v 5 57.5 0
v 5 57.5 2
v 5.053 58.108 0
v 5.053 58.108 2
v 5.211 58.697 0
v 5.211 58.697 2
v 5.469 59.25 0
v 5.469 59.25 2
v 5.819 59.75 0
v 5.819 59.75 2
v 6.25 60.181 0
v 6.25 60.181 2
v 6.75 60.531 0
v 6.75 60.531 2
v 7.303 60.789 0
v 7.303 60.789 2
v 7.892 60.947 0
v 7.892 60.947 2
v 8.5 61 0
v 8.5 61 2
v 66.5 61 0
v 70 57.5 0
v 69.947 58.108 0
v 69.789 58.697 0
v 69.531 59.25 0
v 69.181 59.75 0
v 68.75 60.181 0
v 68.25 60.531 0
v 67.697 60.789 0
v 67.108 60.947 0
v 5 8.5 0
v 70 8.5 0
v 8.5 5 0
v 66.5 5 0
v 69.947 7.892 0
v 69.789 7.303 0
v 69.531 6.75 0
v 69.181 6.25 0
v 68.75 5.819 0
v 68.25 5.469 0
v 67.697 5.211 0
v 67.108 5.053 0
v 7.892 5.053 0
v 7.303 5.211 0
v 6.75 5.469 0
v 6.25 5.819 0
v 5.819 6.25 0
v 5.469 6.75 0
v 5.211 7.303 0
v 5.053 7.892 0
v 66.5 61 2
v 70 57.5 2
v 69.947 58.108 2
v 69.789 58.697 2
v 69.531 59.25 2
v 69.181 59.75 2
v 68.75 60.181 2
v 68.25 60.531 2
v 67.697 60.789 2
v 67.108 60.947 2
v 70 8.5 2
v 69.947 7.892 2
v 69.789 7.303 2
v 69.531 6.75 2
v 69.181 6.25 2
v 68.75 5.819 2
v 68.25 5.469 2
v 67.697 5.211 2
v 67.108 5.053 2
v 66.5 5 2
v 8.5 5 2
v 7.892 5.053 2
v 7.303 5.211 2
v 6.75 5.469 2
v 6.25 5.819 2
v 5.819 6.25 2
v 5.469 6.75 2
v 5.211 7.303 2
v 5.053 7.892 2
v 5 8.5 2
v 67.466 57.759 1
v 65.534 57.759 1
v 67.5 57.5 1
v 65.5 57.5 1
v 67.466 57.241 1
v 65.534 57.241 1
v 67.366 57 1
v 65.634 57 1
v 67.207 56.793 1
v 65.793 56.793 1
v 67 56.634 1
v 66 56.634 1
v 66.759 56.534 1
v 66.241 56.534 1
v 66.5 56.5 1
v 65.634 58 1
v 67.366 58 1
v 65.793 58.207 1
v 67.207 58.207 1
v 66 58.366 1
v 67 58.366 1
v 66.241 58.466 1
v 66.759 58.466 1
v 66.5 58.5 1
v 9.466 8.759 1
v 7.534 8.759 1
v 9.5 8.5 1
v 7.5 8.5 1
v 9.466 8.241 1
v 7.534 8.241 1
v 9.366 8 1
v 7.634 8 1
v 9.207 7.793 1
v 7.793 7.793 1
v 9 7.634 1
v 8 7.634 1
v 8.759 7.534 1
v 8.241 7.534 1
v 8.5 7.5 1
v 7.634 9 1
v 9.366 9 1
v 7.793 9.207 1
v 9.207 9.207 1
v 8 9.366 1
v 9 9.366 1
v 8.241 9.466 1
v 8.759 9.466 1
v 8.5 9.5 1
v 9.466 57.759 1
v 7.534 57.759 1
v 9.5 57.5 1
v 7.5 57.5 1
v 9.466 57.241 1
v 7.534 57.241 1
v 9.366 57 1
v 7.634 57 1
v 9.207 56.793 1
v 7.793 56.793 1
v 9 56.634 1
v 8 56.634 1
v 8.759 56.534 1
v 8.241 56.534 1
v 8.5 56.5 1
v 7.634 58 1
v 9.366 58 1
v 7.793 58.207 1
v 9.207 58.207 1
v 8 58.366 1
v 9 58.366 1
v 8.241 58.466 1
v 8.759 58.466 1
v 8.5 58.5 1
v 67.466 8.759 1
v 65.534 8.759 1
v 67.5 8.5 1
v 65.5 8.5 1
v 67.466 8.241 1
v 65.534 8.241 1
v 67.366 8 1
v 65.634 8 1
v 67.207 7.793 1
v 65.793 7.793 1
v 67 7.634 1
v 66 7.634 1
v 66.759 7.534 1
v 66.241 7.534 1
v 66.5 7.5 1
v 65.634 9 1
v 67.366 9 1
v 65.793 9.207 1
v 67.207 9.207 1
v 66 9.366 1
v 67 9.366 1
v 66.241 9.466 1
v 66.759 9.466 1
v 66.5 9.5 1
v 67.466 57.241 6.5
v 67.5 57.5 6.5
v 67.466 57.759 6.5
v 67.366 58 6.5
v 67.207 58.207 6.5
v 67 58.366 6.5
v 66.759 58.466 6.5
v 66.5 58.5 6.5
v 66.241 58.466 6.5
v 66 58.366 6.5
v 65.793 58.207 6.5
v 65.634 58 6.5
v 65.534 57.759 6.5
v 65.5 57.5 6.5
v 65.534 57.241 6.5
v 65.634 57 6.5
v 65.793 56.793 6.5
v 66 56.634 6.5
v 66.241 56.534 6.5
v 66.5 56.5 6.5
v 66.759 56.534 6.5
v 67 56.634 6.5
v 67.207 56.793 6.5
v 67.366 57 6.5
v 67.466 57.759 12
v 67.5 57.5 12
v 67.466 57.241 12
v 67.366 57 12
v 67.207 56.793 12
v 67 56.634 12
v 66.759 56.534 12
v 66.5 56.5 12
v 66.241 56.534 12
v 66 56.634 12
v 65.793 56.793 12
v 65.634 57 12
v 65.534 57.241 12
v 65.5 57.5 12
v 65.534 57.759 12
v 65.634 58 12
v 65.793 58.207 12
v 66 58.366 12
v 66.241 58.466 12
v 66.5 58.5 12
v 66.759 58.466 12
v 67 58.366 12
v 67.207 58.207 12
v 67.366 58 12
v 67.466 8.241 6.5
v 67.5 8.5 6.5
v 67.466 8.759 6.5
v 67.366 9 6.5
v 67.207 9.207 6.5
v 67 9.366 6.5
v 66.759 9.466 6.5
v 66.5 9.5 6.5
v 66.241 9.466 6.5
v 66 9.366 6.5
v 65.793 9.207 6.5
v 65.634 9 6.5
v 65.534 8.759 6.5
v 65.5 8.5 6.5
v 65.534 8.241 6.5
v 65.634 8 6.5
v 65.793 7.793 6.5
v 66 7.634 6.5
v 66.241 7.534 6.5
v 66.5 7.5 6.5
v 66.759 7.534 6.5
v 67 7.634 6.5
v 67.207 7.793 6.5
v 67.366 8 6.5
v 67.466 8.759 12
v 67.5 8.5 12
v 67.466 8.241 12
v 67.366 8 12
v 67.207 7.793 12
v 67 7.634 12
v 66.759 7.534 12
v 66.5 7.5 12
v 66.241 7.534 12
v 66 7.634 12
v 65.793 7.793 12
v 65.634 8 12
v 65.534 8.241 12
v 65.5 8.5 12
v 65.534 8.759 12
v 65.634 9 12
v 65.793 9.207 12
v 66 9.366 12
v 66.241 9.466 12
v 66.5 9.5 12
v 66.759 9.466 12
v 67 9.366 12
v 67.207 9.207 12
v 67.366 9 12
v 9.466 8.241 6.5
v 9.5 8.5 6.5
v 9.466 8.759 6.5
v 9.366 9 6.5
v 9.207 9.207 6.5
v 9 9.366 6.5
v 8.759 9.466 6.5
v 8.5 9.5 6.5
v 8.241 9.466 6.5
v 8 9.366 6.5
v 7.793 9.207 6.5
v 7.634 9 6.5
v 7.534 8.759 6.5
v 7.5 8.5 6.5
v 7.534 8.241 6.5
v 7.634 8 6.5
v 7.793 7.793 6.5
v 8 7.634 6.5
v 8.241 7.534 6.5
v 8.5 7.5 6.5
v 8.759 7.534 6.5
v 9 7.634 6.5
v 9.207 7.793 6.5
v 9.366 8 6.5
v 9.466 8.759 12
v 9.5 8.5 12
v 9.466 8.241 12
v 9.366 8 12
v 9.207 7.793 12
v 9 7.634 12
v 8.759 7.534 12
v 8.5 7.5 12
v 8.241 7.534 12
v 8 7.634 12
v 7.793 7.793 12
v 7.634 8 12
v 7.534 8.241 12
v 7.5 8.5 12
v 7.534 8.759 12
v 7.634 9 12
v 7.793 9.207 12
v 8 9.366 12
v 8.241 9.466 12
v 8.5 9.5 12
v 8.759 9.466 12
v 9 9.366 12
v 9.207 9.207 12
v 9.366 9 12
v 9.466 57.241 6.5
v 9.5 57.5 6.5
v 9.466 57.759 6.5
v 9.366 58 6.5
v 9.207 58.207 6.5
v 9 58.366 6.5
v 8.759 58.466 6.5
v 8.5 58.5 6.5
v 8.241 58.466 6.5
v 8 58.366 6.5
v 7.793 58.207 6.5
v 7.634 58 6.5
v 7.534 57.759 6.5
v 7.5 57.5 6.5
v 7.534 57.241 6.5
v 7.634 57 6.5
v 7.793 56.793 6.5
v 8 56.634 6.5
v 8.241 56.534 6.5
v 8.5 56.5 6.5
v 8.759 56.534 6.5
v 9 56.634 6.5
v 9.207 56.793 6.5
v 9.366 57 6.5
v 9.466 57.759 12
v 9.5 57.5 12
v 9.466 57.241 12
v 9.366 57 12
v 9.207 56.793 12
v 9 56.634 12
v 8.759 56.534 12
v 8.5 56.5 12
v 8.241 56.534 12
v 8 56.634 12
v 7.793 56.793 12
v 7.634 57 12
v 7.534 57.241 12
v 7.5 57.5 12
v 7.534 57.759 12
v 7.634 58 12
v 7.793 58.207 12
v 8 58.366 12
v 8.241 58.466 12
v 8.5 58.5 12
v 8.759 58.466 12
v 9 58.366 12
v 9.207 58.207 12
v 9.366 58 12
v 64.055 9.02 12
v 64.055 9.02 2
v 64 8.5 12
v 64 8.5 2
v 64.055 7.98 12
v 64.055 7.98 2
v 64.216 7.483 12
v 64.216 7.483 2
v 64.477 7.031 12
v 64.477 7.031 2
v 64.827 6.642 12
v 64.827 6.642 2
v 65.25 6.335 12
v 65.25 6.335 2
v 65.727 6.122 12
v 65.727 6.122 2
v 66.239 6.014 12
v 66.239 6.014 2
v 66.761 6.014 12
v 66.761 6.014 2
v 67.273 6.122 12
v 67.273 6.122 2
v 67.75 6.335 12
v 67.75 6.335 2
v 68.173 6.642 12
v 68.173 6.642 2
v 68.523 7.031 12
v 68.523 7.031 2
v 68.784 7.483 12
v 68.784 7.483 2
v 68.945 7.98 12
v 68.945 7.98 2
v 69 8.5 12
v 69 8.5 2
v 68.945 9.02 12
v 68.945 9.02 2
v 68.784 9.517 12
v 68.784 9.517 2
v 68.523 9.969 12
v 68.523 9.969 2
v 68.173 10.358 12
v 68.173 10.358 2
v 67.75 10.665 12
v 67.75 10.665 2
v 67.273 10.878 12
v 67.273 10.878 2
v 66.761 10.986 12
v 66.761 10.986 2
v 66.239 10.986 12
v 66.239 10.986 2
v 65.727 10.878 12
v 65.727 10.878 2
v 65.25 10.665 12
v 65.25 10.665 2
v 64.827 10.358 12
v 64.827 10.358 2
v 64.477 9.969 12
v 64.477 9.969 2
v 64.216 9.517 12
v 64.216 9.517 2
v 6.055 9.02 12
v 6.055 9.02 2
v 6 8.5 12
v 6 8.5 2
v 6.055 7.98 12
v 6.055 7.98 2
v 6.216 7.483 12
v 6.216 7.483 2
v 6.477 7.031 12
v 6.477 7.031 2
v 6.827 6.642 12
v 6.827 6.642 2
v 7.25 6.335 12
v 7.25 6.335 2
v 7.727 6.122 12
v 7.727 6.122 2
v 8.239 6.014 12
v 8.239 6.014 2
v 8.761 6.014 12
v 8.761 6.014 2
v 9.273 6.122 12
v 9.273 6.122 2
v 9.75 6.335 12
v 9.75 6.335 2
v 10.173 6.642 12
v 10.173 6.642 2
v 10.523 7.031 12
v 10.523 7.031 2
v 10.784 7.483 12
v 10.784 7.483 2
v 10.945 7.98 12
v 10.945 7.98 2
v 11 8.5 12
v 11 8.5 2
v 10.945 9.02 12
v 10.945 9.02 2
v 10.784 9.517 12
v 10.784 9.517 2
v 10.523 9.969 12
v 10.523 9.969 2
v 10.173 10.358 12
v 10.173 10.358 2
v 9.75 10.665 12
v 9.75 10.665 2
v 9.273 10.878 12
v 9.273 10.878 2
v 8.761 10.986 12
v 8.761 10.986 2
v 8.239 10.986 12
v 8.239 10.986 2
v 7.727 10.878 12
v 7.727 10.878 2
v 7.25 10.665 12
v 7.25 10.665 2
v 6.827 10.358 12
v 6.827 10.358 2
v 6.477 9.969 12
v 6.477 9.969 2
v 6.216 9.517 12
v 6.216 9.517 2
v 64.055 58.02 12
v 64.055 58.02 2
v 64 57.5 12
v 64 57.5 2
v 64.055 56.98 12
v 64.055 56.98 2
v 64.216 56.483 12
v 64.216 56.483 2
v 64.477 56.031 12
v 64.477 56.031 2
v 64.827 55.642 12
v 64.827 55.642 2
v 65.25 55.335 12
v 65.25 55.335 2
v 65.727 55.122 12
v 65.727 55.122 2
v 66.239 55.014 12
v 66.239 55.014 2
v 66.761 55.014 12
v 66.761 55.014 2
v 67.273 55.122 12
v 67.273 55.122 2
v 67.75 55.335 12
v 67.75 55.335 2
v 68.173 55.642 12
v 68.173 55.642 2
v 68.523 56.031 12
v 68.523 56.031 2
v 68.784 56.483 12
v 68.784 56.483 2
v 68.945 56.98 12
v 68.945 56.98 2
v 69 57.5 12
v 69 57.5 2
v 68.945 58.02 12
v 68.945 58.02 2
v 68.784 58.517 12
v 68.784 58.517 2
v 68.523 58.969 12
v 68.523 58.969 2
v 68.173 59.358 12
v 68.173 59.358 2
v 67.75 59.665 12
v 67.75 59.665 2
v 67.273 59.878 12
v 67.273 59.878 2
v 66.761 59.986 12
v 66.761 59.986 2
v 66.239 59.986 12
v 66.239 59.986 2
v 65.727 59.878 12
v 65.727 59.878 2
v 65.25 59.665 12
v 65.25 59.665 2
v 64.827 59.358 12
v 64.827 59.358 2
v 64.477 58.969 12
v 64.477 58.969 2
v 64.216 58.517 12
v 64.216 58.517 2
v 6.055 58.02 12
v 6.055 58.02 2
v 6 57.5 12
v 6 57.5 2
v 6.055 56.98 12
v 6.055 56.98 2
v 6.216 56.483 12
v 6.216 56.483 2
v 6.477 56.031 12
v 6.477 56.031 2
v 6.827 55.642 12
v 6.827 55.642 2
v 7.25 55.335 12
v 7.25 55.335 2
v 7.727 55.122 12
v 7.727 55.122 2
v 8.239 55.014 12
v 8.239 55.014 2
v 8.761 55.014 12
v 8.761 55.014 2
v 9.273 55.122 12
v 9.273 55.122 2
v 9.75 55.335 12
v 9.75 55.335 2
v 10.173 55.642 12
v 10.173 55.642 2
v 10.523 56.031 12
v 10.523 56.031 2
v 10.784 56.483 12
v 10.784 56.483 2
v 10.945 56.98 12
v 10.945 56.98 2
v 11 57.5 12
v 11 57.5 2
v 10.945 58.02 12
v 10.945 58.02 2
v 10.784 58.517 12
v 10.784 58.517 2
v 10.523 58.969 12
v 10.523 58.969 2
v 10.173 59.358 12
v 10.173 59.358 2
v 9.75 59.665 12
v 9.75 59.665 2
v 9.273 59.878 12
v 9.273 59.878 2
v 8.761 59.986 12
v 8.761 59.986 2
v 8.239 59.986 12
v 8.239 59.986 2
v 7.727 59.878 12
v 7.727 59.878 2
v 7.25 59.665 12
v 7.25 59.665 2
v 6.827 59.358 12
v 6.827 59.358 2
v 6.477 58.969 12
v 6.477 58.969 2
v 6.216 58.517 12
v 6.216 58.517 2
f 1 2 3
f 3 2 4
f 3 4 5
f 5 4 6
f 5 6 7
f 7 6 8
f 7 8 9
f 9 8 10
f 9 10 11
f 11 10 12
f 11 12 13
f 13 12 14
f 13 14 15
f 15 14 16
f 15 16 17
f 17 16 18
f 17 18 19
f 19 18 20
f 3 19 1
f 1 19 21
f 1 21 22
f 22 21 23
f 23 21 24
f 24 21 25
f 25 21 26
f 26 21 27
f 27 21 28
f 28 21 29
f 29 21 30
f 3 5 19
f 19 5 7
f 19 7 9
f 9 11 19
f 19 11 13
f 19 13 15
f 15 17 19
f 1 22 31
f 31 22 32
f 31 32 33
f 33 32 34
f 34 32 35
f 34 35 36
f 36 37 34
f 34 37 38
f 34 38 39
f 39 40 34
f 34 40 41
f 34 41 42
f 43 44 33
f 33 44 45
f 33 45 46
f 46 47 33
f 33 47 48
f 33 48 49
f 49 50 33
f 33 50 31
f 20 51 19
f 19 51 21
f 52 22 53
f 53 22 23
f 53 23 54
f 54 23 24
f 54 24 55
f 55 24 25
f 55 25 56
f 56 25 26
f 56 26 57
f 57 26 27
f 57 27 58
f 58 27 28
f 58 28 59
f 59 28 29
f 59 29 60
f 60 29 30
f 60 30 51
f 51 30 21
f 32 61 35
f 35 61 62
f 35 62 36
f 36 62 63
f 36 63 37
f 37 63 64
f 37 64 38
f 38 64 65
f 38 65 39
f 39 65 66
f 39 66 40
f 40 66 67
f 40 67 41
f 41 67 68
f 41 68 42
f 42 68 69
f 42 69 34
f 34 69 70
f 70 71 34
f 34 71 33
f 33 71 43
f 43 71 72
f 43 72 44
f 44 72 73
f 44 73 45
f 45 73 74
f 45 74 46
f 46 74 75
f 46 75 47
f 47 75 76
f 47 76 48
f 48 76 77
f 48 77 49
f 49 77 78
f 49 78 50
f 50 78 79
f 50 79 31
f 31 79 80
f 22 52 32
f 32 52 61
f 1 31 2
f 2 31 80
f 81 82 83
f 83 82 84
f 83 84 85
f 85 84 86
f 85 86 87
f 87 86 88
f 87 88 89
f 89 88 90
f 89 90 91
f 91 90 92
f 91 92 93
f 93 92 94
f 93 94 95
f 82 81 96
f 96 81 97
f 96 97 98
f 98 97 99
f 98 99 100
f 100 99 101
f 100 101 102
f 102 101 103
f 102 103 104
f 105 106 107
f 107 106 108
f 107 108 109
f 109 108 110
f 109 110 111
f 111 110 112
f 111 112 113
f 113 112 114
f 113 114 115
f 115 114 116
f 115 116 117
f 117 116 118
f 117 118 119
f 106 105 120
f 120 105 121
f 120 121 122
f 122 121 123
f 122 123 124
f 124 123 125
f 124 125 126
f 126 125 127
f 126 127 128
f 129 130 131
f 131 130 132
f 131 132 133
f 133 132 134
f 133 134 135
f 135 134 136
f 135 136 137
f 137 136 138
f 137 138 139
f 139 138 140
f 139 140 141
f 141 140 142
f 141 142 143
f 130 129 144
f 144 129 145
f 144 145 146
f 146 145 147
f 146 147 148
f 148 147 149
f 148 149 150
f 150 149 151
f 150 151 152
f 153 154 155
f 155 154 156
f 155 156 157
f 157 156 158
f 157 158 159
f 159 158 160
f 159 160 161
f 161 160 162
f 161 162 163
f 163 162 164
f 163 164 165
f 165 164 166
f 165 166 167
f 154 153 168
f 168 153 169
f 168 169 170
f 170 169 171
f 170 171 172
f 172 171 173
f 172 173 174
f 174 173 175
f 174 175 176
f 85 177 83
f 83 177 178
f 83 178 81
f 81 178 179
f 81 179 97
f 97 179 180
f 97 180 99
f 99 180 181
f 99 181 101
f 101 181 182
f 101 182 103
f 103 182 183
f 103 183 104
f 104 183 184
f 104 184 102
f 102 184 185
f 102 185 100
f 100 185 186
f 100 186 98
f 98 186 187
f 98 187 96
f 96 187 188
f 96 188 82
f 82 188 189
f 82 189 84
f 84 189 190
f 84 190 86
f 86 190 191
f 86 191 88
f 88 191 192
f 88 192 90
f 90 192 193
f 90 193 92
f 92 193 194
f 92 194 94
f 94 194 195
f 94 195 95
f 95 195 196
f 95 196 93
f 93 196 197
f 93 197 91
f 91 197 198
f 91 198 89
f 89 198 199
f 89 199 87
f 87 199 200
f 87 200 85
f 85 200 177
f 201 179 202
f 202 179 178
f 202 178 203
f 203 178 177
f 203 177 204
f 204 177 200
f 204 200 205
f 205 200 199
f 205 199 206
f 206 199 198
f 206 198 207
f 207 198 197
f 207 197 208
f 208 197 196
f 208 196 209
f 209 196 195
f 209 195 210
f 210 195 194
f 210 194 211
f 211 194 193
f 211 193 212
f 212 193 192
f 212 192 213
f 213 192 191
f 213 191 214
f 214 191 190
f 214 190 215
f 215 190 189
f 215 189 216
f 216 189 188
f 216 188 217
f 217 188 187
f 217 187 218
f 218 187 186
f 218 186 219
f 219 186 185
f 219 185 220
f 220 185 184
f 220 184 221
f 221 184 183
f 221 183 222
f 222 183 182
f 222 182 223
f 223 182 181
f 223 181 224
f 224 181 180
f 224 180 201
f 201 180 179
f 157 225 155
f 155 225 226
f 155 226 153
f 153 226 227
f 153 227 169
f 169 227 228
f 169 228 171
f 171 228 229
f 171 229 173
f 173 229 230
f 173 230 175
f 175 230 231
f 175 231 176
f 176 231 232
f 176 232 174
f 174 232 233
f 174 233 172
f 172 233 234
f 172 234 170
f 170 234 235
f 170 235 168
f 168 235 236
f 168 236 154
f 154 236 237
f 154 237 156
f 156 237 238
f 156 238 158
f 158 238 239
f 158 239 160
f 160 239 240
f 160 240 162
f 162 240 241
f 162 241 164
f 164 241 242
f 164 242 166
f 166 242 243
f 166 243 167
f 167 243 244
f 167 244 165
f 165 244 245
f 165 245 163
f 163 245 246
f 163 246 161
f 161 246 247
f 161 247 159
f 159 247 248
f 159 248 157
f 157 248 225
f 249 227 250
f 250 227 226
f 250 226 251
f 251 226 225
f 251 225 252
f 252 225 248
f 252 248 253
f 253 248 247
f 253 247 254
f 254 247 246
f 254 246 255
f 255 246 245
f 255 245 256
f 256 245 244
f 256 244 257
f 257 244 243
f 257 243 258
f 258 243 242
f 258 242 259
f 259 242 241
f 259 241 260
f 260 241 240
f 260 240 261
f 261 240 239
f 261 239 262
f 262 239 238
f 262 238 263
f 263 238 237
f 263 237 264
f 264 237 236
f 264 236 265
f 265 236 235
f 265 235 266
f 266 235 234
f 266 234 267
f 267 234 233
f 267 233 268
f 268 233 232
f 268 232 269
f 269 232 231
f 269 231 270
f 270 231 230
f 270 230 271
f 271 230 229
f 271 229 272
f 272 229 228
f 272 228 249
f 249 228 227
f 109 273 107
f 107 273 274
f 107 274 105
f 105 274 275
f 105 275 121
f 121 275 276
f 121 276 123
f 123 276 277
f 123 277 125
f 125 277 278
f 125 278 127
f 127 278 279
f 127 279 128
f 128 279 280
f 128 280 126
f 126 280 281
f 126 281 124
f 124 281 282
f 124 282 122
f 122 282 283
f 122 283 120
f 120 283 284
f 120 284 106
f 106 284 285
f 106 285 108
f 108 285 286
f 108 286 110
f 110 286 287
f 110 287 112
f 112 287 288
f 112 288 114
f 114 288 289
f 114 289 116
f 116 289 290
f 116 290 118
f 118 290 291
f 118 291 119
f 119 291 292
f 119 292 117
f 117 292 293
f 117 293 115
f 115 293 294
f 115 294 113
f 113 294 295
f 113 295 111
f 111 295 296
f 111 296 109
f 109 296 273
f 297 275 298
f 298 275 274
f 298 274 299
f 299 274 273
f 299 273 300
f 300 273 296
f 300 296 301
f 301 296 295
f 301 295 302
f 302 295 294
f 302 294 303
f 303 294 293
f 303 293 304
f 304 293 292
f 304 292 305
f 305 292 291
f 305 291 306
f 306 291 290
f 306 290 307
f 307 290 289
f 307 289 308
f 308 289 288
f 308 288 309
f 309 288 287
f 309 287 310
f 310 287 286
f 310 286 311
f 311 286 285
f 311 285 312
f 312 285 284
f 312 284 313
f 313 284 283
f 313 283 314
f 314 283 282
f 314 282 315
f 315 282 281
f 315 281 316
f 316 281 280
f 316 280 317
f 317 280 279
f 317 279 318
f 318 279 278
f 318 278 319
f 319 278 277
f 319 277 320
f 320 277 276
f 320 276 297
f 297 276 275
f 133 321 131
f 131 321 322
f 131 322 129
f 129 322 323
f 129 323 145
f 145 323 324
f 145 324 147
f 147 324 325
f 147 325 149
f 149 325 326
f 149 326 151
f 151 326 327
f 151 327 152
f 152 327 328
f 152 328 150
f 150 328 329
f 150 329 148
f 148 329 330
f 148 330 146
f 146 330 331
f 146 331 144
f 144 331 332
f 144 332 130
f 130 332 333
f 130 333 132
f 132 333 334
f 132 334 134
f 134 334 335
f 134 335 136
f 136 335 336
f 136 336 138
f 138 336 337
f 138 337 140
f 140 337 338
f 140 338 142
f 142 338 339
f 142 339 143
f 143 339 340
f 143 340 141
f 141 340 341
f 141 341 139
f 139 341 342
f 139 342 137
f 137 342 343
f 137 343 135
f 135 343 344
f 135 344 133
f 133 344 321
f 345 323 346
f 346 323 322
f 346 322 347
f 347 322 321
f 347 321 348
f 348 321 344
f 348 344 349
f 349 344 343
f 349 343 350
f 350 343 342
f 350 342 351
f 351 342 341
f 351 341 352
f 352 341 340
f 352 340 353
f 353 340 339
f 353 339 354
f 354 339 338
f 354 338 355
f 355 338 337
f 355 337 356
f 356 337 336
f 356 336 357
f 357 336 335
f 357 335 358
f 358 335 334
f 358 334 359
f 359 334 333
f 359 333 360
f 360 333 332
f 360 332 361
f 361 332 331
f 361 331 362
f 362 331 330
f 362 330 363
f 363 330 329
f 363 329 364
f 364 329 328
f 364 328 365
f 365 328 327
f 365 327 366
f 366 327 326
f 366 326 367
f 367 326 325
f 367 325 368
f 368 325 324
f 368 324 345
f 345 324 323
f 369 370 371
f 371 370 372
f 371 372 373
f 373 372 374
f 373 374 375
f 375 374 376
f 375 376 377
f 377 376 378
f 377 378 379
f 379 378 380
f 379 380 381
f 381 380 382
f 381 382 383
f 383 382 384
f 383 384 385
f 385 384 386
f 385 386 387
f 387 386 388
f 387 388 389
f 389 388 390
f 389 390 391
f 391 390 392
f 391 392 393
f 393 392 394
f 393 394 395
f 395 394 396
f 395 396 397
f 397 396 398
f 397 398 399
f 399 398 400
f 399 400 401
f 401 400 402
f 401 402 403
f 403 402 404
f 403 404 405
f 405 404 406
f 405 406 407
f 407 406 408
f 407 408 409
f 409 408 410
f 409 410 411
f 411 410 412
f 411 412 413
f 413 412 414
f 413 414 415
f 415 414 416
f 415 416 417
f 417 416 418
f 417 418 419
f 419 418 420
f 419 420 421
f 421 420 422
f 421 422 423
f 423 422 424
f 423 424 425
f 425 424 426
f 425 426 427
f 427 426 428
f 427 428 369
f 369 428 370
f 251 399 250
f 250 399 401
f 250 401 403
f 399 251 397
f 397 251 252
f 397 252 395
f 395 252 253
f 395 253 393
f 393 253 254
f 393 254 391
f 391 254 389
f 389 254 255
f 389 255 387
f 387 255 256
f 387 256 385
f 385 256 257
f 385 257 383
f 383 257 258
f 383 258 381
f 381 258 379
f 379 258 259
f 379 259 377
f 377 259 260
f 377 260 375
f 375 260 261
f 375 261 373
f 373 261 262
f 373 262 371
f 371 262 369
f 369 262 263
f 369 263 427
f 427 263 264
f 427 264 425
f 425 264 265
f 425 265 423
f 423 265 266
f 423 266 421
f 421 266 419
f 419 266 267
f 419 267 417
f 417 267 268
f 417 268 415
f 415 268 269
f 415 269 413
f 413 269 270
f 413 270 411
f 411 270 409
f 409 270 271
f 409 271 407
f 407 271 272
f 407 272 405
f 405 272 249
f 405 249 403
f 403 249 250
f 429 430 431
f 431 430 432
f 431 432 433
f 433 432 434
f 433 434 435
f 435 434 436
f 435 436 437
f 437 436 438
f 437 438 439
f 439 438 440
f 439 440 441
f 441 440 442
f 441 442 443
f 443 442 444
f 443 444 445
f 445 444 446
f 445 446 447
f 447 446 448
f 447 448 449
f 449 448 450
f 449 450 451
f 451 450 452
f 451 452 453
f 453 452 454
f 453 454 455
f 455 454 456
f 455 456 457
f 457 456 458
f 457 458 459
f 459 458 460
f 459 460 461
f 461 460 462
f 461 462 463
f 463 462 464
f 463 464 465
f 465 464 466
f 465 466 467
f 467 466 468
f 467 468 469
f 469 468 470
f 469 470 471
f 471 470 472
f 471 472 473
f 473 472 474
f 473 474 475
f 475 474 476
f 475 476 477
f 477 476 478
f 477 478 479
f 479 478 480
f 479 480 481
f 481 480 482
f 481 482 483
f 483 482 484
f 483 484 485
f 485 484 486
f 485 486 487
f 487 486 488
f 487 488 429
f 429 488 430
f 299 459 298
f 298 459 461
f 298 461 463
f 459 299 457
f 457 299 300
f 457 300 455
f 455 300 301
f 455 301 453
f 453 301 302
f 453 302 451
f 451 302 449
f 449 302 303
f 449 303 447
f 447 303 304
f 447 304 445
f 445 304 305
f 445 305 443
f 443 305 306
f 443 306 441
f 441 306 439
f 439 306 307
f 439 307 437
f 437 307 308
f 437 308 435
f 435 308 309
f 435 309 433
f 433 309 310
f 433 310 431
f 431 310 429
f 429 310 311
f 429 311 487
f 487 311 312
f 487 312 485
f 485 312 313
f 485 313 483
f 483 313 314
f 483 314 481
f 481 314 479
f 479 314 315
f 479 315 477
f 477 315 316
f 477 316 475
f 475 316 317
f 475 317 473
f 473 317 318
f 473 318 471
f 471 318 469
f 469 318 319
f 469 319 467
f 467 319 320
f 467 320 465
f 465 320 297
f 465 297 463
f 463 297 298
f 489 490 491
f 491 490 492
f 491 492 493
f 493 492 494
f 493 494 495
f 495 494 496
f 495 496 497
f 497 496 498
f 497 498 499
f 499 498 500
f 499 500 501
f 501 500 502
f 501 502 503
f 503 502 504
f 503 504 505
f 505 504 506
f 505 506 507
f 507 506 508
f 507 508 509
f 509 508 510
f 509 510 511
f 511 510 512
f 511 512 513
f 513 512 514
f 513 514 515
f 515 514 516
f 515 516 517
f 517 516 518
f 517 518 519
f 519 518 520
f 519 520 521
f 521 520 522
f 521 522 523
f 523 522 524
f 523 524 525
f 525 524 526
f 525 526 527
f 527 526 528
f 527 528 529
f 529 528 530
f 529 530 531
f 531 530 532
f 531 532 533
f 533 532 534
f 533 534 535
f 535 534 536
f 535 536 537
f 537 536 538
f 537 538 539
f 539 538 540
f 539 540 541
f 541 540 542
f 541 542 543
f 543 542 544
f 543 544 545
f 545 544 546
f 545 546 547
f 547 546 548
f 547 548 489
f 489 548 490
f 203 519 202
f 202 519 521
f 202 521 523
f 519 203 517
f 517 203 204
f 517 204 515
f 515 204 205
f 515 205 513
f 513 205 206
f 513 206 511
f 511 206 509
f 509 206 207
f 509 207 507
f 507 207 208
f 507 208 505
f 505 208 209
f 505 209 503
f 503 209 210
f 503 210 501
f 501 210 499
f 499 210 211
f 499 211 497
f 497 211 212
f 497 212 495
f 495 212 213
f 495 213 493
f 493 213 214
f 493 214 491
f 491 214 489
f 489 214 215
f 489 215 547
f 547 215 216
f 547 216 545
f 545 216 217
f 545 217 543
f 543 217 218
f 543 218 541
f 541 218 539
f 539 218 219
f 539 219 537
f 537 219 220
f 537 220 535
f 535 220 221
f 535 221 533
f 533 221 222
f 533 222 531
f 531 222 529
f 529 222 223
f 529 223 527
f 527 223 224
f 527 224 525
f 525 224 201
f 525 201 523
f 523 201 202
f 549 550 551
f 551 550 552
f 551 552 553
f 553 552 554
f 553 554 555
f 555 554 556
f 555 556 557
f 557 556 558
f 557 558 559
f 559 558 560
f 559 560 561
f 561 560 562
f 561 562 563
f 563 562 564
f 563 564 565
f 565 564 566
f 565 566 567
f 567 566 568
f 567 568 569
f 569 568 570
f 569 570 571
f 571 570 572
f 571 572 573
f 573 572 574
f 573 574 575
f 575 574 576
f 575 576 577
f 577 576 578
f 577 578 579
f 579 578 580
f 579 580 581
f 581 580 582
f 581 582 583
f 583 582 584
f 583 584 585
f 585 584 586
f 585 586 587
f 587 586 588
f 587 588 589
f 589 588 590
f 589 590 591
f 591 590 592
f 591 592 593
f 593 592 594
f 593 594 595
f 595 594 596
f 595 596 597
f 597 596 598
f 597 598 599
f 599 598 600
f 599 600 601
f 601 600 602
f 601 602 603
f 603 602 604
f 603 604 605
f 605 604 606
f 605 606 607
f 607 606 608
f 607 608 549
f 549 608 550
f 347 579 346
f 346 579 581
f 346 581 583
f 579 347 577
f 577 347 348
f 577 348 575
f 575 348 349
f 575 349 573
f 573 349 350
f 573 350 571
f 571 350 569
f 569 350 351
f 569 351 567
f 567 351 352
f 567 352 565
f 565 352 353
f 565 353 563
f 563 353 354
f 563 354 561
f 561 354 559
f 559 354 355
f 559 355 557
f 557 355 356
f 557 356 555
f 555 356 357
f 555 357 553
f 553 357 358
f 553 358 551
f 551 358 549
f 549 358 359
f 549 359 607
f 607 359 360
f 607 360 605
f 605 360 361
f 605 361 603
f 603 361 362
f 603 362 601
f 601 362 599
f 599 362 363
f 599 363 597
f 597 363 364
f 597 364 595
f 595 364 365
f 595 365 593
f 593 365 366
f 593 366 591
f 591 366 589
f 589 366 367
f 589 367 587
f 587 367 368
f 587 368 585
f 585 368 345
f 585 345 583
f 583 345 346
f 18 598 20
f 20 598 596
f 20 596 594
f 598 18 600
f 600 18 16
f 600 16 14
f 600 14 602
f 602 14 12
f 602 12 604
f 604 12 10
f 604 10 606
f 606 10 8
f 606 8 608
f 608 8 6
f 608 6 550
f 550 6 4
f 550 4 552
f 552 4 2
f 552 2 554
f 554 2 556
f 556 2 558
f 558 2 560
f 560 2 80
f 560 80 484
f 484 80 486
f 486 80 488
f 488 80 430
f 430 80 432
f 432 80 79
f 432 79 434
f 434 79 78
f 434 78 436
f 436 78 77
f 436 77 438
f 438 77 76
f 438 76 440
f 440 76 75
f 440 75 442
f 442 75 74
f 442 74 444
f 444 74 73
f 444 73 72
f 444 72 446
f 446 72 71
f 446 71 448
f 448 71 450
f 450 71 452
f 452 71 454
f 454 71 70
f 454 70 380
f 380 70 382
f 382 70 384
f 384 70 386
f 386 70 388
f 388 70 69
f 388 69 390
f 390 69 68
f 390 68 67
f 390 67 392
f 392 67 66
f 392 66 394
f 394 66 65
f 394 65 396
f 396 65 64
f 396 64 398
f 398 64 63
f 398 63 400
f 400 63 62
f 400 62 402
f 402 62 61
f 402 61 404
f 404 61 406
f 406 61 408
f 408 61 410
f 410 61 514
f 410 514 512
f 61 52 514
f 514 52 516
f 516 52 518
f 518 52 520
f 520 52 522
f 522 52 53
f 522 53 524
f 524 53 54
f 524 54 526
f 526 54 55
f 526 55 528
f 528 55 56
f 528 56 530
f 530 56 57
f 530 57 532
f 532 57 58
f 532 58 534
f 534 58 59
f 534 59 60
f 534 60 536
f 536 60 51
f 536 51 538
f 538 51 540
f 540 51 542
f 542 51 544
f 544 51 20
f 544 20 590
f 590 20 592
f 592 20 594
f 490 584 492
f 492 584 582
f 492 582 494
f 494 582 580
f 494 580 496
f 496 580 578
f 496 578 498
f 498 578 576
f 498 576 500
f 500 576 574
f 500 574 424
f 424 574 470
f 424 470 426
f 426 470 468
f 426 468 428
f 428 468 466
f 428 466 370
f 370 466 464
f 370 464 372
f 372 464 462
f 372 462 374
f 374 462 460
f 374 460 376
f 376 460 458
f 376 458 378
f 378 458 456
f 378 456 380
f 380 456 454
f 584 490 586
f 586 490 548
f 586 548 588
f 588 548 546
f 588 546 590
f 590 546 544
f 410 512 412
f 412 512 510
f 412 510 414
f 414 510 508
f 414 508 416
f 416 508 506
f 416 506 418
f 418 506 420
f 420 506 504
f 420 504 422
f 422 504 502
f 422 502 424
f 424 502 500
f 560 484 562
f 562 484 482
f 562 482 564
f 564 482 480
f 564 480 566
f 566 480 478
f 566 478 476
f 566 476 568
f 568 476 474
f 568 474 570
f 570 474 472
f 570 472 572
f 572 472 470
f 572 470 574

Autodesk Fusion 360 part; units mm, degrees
sketch "Skizze1" plane through (0, 0, 0) normal (0, 0, 1) x (1, 0, 0)
  line L0 (0, 0) -> (95, 0)
  line L1 (95, 0) -> (95, 66)
  line L2 (95, 66) -> (0, 66)
  line L3 (0, 66) -> (0, 0)
  line L4 (47.5, 0) -> (47.5, 66) construction
  line L5 (0, 33) -> (95, 33) construction
  line L6 (90, 61) -> (5, 61)
  line L7 (5, 61) -> (5, 5)
  line L8 (5, 5) -> (90, 5)
  line L9 (90, 5) -> (90, 61)
  line L10 (90, 61) -> (5, 5) construction
  line L11 (5, 61) -> (90, 5) construction
  line L12 (5, 61) -> (8.5, 61)
  line L13 (8.5, 61) -> (8.5, 57.5)
  line L14 (8.5, 57.5) -> (5, 57.5)
  line L15 (5, 57.5) -> (5, 61)
  circle A0 centre (8.5, 57.5) radius 2.5
  line L16 (5, 5) -> (8.5, 5)
  line L17 (8.5, 5) -> (8.5, 8.5)
  line L18 (8.5, 8.5) -> (5, 8.5)
  line L19 (5, 8.5) -> (5, 5)
  circle A1 centre (8.5, 8.5) radius 2.5
  line L20 (8.5, 8.5) -> (66.5, 8.5)
  circle A2 centre (66.5, 8.5) radius 2.5
  line L21 (8.5, 57.5) -> (66.5, 57.5)
  circle A3 centre (66.5, 57.5) radius 2.5
  point P0 (47.5, 33)
  dimension "d1" = 95
  dimension "d2" = 66
  dimension "d3" = 85
  dimension "d4" = 56
  dimension "d5" = 3.5
  dimension "d6" = 3.5
  dimension "d7" = 5
  dimension "d8" = 3.5
  dimension "d9" = 3.5
  dimension "d10" = 5
  dimension "d11" = 58
  dimension "d12" = 5
  dimension "d13" = 58
  dimension "d14" = 5
extrude "Extrusion1" add sketch "Skizze1" along normal blind 2 contours L0 L1 L2 L3 | L6 L7 L8 L9 L13 L14 A0 L17 L18 A1 | L6 L7 L12 L13 L14 L15 A0 | L7 L8 L16 L17 L18 L19 A1
extrude "Extrusion2" add sketch "Skizze1" along normal blind 12 contours A3 | A2 | L13 A0 L21 | L13 L14 A0 | L14 A0 L21 | L17 L18 A1 | L17 A1 L20 | L18 A1 L20
sketch "Skizze2" plane through (0, 0, 12) normal (0, 0, 1) x (-1, 0, 0)
  circle A0 centre (-8.5, -57.5) radius 2.5
  circle A1 centre (-8.5, -57.5) radius 1
  dimension "d19" = 2
extrude "Extrusion3" cut sketch "Skizze2" against normal blind 10 contours A1
sketch "Skizze3" plane through (0, 0, 12) normal (0, 0, 1) x (-1, 0, 0)
  circle A0 centre (-8.5, -8.5) radius 2.5
  circle A1 centre (-8.5, -8.5) radius 1
  dimension "d22" = 2
extrude "Extrusion4" cut sketch "Skizze3" against normal blind 10 contours A1
sketch "Skizze4" plane through (0, 0, 12) normal (0, 0, 1) x (-1, 0, 0)
  circle A0 centre (-66.5, -8.5) radius 2.5
  circle A1 centre (-66.5, -8.5) radius 1
  dimension "d25" = 2
extrude "Extrusion5" cut sketch "Skizze4" against normal blind 10 contours A1
sketch "Skizze5" plane through (0, 0, 12) normal (0, 0, 1) x (-1, 0, 0)
  circle A0 centre (-66.5, -57.5) radius 2.5
  circle A1 centre (-66.5, -57.5) radius 1
  dimension "d28" = 2
extrude "Extrusion6" cut sketch "Skizze5" against normal blind 10 contours A1
extrude "Extrusion7" cut 4 faces at (8.8074, 8.4503, 2) (8.2374, 57.0304, 2) (66.1815, 58.0517, 2) (66.5787, 9.0963, 2) along direction (0, 0, -1) blind 1
sketch "Skizze6" plane through (0, 0, 2) normal (0, 0, 1) x (-1, 0, 0)
  circle A0 centre (-66.5, -57.5) radius 2.5
  circle A1 centre (-8.5, -8.5) radius 2.5
  circle A2 centre (-8.5, -57.5) radius 2.5
  circle A3 centre (-66.5, -8.5) radius 2.5
  line L0 (0, -66) -> (0, 0)
  line L1 (0, 0) -> (-95, 0)
  line L2 (-95, 0) -> (-95, -66)
  line L3 (-95, -66) -> (0, -66)
  circle A4 centre (-8.5, -57.5) radius 3.5
  circle A5 centre (-66.5, -57.5) radius 3.5
  circle A6 centre (-8.5, -8.5) radius 3.5
  dimension "d33" = 7
  dimension "d34" = 7
  dimension "d35" = 7
extrude "Extrusion8" cut sketch "Skizze1" along normal blind 2 contours L0 L1 L2 L3
extrude "Extrusion9" cut 1 faces at (90, 23.6667, 0.6667) along direction (-1, 0, 0) blind 20
fillet "Abrundung1" radius 3.5 4 edges at (5, 5, 1) (70, 5, 1) (70, 61, 1) (5, 61, 1)
